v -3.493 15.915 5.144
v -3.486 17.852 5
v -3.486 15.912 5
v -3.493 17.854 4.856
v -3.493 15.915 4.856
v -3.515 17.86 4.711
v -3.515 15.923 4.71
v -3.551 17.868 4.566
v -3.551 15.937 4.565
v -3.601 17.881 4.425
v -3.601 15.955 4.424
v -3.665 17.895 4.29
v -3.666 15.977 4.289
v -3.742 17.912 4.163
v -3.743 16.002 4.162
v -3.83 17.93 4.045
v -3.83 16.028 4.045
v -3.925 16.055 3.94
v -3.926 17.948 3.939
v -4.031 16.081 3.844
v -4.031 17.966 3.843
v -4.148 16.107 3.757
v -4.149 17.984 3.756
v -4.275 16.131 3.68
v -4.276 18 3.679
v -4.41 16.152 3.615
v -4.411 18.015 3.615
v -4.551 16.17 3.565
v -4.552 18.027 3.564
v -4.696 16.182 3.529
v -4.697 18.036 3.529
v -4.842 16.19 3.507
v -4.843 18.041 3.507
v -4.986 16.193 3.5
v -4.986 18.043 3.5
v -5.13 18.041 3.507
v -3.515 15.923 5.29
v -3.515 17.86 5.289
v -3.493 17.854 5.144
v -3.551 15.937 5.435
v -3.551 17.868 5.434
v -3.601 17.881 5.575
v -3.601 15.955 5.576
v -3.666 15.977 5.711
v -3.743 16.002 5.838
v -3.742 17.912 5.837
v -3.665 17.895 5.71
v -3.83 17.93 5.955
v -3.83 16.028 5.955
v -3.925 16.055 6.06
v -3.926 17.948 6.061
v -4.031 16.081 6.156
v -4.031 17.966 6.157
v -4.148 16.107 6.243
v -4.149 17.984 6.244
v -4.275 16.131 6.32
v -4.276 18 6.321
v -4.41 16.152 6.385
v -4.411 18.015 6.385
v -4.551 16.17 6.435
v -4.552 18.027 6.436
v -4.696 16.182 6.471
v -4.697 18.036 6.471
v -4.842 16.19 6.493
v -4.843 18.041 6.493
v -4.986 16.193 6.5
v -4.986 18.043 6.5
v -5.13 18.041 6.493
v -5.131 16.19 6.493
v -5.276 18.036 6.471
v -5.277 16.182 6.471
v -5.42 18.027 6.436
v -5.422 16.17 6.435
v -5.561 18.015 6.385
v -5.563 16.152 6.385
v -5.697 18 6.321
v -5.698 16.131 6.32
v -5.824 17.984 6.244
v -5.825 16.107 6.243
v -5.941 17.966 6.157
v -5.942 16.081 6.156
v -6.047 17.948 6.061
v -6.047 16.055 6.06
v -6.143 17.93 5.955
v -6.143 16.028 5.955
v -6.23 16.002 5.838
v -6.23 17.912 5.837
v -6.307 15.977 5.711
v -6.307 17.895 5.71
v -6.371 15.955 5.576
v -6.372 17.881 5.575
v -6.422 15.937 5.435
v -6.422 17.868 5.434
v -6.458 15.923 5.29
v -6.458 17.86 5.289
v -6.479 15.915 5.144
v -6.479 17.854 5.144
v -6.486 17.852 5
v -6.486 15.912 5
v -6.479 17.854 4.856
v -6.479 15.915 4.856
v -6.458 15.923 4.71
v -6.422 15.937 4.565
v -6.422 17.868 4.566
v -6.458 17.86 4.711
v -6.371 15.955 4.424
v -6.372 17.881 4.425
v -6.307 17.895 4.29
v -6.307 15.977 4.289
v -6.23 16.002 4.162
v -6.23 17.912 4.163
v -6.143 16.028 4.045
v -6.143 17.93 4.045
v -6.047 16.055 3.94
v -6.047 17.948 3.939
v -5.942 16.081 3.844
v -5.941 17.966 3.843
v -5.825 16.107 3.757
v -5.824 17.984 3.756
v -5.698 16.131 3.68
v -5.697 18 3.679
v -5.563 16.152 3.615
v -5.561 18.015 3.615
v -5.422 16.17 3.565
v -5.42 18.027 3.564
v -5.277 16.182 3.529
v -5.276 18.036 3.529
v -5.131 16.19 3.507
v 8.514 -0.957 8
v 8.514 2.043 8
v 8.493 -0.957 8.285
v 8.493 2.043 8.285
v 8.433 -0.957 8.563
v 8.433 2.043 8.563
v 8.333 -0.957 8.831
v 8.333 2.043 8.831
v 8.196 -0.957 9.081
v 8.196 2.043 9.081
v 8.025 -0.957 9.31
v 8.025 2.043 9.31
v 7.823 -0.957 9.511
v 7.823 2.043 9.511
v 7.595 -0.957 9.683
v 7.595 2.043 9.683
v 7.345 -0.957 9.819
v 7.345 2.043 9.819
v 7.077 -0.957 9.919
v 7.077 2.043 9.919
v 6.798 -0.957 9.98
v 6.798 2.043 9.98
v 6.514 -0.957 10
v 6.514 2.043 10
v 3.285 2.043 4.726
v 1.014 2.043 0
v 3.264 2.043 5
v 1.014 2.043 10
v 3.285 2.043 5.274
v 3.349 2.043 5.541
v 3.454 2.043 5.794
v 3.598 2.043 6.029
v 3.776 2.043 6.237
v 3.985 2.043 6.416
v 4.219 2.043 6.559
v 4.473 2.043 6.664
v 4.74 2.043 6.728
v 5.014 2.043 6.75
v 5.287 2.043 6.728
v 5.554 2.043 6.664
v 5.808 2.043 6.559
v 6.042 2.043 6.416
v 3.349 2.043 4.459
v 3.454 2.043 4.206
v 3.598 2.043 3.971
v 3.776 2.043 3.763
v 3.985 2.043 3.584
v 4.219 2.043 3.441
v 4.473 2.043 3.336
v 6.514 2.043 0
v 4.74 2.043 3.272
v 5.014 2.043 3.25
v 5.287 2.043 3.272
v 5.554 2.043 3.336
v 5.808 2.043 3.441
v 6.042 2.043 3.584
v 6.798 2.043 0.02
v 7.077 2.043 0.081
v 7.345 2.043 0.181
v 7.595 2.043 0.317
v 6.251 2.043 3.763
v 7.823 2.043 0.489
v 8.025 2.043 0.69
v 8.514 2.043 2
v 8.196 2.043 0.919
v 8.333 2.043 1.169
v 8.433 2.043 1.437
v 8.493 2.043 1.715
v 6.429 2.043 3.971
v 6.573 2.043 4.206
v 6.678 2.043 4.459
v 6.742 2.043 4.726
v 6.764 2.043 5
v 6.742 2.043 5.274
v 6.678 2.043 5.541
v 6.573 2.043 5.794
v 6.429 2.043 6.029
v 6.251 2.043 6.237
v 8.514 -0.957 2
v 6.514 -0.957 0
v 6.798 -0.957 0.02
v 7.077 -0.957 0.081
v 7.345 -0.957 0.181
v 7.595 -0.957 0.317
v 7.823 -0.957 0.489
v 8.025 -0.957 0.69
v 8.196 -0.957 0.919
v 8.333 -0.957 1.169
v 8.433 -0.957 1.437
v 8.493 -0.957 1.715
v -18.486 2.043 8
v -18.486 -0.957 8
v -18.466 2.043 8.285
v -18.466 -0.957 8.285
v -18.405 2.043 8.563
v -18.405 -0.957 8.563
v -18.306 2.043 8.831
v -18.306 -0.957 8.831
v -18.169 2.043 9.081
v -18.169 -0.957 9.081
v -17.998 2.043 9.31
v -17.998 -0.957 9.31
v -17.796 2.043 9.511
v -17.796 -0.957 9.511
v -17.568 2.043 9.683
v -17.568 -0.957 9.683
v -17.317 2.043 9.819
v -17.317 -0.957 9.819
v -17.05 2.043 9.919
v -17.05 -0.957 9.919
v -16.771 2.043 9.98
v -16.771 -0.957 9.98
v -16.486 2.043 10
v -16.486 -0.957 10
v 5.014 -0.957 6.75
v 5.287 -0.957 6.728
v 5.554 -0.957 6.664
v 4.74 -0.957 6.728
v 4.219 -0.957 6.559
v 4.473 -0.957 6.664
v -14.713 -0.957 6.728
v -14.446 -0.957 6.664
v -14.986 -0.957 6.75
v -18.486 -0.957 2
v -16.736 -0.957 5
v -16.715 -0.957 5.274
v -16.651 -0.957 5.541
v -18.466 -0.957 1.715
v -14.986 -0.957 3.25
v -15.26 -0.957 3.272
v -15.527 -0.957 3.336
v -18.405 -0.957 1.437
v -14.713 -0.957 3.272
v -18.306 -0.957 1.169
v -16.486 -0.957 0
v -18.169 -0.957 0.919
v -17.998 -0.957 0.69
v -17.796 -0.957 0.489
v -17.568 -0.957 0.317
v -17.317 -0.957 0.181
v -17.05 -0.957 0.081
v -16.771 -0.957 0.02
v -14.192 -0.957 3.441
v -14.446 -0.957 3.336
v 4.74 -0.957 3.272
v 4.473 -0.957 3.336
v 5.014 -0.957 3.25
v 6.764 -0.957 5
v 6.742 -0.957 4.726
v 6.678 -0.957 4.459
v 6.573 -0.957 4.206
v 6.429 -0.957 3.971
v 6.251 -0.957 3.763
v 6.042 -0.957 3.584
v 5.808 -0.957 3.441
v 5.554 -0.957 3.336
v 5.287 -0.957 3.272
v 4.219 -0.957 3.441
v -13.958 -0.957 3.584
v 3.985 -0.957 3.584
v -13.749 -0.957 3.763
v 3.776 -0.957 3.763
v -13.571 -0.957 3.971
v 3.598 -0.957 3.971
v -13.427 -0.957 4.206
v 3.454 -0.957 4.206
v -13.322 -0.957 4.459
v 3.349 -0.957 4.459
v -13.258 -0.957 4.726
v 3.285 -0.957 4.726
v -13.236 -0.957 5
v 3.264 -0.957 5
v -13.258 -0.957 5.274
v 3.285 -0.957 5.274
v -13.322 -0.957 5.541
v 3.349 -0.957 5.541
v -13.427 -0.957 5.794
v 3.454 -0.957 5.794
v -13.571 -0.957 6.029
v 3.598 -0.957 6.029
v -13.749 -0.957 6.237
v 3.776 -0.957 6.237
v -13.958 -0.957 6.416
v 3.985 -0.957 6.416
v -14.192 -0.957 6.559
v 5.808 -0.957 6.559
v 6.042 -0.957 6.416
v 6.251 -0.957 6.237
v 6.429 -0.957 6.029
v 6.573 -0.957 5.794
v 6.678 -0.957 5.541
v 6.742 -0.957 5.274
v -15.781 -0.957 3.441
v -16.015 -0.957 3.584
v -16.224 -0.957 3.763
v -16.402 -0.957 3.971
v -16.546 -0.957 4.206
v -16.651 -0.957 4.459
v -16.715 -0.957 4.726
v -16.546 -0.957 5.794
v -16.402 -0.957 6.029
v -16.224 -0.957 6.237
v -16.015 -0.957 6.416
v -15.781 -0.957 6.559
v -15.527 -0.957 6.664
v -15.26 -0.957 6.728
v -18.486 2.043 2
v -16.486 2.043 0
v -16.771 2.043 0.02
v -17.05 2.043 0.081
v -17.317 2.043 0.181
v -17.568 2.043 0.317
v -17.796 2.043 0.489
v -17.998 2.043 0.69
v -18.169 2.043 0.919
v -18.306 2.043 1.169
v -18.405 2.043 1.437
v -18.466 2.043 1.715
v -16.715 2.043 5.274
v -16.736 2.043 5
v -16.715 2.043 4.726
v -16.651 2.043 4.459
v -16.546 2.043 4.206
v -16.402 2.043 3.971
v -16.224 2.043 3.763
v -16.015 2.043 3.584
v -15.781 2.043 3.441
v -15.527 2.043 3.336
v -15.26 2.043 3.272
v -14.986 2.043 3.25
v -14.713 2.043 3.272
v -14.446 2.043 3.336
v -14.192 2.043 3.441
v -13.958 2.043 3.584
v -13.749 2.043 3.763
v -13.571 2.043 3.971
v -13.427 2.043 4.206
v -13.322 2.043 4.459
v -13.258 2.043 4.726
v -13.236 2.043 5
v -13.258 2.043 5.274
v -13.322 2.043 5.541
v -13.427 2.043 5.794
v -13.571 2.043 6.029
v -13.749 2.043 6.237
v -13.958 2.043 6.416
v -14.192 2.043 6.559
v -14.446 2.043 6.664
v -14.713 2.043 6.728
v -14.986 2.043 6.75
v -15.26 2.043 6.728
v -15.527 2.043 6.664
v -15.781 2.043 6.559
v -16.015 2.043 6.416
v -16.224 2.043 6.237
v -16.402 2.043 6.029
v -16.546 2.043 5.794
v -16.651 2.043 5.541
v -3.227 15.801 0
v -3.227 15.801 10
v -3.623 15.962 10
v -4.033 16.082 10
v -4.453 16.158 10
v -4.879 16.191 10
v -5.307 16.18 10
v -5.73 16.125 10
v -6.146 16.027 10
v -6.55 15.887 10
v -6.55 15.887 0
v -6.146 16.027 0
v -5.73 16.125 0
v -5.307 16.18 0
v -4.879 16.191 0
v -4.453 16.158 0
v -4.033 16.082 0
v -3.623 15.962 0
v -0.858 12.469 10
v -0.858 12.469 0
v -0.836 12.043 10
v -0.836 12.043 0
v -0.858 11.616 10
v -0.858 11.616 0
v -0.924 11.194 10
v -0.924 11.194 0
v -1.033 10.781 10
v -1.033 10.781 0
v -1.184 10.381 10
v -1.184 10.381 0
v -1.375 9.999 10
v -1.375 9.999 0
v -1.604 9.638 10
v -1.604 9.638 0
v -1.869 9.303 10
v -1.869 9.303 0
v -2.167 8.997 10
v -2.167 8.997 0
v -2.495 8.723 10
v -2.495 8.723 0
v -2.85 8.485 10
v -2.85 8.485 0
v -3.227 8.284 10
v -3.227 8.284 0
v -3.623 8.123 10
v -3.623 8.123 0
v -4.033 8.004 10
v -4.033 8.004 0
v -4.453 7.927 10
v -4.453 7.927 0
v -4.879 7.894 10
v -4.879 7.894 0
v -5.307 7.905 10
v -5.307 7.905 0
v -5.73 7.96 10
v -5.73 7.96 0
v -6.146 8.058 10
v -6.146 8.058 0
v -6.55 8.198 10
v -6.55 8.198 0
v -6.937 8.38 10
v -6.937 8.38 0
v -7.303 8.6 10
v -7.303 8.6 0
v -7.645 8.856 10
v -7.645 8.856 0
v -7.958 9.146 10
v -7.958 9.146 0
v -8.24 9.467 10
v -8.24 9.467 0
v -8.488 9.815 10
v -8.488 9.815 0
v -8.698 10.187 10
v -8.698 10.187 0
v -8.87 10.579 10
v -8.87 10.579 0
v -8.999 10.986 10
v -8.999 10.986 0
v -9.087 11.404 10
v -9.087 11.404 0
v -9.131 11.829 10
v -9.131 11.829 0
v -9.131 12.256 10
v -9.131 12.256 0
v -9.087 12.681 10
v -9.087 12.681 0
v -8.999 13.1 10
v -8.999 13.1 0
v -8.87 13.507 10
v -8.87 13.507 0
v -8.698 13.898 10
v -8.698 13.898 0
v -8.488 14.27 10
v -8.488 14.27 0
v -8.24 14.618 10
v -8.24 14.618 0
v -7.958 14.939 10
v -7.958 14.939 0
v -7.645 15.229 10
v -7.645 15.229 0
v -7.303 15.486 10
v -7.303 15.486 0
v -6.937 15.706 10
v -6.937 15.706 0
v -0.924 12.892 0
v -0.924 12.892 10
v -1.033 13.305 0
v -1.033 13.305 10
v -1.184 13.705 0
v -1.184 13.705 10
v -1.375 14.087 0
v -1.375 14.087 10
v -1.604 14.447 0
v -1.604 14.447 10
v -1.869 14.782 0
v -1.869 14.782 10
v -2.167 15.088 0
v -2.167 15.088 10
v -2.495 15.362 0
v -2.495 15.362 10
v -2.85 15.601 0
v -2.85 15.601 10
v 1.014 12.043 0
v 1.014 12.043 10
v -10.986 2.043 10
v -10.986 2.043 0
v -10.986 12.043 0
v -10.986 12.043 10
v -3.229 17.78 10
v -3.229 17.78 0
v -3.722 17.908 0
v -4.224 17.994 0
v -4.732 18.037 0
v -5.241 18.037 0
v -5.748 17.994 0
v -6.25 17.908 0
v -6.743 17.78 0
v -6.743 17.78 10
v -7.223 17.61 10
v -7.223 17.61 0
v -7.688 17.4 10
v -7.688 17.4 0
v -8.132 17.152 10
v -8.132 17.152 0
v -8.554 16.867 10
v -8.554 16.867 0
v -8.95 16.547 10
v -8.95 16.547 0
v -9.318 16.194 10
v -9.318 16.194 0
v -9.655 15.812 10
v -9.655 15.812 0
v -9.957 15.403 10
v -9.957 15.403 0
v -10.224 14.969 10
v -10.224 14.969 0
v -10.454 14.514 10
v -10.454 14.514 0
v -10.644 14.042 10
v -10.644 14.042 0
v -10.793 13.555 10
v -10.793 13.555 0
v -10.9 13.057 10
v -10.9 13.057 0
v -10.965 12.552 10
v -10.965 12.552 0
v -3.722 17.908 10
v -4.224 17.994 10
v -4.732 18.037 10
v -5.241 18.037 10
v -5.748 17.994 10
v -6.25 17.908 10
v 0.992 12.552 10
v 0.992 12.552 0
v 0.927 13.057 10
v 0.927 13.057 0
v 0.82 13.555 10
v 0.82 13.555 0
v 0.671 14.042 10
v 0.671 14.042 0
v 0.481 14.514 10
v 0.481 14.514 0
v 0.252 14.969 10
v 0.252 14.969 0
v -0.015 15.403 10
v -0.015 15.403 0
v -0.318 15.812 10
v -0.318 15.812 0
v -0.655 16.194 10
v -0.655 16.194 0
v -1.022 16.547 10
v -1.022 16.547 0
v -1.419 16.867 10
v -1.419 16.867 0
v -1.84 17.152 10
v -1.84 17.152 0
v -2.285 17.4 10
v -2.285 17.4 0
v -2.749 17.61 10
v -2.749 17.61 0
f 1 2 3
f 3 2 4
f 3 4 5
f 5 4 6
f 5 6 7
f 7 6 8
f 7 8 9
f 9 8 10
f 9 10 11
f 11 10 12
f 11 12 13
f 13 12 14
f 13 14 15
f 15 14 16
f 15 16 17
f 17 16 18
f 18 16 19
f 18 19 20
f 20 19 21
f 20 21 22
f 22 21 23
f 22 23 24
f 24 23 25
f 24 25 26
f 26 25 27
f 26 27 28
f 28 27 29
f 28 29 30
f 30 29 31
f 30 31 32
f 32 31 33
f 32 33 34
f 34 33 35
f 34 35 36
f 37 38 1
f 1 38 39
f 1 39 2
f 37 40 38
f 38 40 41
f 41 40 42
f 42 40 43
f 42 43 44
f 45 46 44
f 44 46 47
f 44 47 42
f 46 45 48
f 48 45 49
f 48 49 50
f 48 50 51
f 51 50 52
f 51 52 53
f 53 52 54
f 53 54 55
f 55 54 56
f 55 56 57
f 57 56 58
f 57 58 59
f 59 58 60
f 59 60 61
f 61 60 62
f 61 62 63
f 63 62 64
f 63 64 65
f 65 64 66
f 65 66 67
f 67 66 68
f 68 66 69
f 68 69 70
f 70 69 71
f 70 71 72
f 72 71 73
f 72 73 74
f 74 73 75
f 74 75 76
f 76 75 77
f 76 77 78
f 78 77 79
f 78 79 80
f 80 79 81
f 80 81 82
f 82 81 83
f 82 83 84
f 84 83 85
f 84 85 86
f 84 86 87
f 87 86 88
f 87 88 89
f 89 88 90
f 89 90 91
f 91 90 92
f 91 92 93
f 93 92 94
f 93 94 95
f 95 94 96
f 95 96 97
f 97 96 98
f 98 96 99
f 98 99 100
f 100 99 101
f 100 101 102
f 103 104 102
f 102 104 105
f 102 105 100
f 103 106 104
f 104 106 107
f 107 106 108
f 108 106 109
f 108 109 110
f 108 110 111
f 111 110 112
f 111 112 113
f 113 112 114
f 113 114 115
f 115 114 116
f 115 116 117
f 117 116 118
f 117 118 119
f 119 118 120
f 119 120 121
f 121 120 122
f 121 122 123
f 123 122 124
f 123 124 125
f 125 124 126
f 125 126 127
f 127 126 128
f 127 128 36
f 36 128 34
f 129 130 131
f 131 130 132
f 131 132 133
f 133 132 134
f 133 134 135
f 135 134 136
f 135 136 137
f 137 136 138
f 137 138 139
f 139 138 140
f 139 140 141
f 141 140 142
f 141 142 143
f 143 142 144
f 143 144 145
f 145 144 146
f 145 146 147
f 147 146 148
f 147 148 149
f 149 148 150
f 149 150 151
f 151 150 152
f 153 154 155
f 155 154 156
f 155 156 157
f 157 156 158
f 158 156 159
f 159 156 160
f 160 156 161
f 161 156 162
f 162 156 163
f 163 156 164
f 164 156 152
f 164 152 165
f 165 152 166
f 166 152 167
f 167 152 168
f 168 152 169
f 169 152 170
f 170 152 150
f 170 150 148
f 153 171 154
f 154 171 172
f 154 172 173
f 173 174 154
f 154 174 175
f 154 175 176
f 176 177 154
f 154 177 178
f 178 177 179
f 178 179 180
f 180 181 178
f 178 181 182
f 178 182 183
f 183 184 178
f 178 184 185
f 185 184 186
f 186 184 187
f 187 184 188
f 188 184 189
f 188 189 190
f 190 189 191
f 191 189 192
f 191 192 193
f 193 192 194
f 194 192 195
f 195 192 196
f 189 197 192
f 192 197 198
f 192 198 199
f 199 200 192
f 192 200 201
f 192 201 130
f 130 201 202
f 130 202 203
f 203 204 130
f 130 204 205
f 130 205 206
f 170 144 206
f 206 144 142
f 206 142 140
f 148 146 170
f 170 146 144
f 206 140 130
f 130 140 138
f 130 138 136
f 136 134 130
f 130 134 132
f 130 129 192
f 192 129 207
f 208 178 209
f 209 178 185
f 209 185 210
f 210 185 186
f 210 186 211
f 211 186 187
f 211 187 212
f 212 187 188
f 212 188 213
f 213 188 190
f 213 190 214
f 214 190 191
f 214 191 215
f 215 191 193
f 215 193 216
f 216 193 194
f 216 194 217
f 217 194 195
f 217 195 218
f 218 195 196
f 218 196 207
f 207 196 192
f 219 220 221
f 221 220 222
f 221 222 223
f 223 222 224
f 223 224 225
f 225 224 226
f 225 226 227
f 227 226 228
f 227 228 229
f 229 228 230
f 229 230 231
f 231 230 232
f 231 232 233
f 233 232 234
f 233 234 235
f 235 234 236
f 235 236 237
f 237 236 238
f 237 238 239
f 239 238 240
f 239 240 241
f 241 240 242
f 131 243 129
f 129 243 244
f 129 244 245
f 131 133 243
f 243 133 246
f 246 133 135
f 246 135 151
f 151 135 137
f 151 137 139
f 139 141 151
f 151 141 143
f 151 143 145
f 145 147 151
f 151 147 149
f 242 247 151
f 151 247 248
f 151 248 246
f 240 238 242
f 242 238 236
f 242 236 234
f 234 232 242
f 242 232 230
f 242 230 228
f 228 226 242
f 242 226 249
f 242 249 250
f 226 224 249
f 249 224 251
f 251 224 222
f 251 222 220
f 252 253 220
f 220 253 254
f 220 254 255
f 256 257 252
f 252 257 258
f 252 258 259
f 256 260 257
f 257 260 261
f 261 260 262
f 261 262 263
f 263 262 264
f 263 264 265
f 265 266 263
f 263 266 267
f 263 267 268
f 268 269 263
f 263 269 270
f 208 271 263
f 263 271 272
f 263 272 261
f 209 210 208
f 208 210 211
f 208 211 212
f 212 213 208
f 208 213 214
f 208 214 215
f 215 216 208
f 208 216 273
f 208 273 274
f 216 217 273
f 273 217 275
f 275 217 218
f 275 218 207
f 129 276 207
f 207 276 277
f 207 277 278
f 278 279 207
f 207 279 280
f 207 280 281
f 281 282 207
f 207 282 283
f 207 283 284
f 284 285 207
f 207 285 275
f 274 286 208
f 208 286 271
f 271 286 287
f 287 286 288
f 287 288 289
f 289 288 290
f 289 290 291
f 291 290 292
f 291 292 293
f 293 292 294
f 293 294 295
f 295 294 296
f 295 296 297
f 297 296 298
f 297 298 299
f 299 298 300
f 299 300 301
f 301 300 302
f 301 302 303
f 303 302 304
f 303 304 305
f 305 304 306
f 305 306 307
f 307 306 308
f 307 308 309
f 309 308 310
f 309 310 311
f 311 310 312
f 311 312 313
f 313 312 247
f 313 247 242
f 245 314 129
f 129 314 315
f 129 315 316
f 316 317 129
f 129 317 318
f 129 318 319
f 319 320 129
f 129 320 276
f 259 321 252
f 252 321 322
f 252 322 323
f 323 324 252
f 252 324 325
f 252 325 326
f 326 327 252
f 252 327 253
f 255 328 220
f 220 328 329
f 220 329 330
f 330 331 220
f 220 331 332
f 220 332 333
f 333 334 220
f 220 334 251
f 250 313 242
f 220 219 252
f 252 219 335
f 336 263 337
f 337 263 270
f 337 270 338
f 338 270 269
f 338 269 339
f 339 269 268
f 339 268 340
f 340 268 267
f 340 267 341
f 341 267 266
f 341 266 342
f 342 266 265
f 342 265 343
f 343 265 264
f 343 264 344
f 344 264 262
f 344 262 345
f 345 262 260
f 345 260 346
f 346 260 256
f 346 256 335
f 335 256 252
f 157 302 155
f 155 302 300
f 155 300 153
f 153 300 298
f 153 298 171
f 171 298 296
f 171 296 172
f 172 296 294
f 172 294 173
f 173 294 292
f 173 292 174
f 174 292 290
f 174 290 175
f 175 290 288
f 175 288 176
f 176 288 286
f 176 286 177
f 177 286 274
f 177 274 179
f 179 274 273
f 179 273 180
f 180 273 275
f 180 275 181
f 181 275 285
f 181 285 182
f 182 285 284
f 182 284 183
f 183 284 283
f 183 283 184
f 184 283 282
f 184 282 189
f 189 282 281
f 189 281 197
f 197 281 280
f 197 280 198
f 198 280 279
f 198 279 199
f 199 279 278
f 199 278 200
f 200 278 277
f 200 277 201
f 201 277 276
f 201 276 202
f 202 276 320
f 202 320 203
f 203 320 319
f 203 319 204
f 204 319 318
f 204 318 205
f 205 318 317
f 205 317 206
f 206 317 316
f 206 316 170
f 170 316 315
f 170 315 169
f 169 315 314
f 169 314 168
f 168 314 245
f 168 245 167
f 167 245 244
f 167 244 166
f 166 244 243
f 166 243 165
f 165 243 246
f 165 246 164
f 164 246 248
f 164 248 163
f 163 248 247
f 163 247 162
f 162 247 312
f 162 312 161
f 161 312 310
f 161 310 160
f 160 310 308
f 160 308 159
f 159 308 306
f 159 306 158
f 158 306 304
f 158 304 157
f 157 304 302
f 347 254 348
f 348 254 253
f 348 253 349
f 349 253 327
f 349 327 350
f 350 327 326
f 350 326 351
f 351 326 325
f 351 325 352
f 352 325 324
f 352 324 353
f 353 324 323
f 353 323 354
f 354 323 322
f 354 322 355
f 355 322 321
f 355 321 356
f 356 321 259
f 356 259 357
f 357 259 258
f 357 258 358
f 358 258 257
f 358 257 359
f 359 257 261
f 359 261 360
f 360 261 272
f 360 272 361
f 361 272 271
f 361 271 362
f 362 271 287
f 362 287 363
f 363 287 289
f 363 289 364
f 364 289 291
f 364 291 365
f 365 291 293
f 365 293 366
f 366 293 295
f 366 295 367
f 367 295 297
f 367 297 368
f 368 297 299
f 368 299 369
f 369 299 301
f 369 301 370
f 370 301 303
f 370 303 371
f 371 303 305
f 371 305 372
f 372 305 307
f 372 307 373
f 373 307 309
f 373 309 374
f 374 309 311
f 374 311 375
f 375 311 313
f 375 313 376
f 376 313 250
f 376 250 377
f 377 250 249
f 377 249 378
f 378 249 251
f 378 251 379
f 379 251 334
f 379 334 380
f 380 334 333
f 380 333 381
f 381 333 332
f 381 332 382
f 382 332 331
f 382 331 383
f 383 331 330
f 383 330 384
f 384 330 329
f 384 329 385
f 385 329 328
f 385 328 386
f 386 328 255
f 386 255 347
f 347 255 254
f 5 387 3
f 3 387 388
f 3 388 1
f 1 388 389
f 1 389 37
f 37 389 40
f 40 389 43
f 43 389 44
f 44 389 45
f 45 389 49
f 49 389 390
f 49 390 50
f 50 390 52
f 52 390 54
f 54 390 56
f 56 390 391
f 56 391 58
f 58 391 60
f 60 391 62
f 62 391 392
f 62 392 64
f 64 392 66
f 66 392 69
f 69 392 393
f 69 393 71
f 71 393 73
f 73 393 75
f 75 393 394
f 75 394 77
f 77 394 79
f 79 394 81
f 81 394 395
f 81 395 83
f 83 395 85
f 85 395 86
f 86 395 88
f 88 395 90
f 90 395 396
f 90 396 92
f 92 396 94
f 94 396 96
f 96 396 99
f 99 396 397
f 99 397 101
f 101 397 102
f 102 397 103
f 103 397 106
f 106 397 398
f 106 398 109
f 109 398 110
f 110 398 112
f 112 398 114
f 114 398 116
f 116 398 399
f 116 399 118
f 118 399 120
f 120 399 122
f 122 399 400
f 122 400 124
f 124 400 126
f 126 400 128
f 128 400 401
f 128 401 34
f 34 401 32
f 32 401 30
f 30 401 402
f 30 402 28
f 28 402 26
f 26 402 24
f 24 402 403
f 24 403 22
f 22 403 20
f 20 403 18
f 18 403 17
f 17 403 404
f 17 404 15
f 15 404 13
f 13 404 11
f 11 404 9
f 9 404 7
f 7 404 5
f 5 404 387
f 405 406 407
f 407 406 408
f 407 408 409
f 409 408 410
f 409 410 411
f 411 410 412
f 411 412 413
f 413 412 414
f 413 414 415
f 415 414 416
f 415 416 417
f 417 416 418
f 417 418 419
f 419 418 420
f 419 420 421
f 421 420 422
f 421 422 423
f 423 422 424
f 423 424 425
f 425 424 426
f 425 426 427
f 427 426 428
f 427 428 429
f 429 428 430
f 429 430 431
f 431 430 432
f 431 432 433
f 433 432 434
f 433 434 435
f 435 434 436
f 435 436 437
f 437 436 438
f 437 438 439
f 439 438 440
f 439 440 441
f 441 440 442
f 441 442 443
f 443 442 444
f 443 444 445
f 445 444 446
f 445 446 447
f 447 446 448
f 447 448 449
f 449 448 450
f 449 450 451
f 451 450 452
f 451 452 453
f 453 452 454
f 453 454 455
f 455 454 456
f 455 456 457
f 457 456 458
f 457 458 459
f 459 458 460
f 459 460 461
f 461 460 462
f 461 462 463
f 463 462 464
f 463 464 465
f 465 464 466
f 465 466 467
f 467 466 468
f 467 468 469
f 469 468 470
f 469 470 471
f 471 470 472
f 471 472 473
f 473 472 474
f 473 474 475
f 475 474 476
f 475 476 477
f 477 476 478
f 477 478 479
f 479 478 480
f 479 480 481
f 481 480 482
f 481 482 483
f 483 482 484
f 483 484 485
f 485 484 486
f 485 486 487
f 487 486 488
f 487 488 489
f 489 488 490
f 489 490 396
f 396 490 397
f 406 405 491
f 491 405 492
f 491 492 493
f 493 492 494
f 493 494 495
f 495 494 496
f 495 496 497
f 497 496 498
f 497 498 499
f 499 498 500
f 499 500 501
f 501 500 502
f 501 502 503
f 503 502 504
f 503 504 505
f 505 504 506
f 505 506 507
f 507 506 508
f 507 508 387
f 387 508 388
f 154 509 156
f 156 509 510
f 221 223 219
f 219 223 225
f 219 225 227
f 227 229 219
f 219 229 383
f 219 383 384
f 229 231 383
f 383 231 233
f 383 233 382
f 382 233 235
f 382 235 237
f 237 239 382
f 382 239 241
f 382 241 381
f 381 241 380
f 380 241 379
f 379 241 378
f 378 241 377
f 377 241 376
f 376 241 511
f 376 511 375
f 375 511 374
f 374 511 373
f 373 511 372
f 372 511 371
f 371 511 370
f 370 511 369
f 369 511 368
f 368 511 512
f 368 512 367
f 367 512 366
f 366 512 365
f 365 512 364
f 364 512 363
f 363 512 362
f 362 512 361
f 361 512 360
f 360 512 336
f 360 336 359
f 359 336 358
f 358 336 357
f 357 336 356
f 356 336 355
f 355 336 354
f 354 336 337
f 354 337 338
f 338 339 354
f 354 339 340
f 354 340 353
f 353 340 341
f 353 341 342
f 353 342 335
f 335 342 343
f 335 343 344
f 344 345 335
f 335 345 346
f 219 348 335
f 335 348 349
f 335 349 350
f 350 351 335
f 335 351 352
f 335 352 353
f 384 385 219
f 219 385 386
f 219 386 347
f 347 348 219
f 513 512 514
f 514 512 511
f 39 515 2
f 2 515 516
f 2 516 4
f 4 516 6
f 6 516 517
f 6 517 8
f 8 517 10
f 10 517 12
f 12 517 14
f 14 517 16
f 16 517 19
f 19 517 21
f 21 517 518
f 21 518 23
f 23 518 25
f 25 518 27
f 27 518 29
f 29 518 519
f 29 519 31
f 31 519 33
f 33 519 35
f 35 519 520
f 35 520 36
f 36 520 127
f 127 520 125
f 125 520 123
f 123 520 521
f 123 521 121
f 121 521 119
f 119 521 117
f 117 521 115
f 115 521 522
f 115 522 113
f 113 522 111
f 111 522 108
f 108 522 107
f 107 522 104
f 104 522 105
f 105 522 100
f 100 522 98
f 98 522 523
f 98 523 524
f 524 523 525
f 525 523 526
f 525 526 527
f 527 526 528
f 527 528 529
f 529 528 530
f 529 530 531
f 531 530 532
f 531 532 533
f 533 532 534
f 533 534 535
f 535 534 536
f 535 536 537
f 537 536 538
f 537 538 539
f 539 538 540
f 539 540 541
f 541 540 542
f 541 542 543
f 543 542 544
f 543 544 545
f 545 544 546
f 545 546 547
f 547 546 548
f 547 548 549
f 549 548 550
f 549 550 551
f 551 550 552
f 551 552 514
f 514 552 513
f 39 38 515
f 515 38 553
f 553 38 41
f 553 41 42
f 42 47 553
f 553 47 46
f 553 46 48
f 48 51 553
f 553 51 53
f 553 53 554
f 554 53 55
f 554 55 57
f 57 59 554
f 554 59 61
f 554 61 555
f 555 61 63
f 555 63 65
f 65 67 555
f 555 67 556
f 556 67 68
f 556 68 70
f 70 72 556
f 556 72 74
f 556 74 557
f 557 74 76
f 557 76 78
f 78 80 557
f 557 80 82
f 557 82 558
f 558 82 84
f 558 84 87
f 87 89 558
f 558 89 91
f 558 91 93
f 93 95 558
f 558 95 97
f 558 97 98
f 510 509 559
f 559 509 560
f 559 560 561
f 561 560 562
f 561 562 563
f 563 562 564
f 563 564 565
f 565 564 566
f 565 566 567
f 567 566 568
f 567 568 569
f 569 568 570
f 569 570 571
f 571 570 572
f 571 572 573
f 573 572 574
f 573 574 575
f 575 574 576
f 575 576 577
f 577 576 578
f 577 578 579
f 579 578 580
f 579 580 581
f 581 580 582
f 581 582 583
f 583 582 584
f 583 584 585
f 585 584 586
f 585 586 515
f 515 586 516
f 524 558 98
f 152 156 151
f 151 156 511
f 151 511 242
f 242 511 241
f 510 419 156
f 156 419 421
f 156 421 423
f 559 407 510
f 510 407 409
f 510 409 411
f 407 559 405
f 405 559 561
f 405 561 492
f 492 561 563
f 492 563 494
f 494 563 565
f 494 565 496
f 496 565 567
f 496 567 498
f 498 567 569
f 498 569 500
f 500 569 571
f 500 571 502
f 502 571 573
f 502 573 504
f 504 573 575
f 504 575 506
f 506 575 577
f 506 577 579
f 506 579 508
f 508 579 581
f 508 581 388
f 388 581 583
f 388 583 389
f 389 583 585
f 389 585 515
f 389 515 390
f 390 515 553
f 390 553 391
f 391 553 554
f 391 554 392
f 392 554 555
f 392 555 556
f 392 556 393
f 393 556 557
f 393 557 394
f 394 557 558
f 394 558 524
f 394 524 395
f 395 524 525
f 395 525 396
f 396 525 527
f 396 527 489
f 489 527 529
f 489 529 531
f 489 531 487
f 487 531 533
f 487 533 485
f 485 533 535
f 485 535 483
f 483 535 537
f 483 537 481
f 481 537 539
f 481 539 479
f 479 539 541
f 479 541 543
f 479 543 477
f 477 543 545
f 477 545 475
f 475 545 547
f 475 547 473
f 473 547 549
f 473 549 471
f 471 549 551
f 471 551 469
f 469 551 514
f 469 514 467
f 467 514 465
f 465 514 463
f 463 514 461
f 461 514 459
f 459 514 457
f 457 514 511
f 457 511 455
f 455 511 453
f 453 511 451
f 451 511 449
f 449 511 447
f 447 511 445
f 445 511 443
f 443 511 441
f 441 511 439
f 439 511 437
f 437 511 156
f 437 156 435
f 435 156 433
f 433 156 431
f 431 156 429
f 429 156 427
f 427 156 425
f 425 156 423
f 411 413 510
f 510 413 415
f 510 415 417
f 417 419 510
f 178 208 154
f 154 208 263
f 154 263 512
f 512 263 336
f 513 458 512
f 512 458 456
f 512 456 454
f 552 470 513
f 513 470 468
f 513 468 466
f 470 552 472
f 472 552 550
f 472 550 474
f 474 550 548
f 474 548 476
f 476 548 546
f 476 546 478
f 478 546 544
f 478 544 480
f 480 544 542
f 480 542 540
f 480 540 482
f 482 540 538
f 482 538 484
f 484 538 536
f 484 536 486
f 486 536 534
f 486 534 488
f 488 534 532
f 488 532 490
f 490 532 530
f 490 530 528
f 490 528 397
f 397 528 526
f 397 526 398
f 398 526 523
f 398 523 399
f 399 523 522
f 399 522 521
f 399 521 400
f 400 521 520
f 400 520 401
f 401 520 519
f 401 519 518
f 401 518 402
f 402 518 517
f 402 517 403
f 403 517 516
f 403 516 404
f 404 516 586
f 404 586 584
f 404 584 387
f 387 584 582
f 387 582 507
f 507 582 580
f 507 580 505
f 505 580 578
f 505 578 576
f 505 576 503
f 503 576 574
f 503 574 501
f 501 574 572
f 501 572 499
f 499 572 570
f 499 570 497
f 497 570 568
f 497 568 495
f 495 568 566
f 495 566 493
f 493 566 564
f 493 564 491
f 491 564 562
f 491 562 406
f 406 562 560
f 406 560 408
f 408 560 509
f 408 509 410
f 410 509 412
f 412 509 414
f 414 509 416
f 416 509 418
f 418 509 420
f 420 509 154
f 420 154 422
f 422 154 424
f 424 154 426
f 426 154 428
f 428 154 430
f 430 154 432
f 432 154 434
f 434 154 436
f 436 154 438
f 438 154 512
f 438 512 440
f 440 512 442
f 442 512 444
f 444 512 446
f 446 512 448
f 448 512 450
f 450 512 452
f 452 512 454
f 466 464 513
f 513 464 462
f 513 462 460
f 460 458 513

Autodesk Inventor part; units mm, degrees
ref_plane "YZ Plane" through (0, 0, 0) normal (1, 0, 0) x (0, 1, 0)
ref_plane "XZ Plane" through (0, 0, 0) normal (0, 1, 0) x (-1, 0, 0)
sketch "Sketch1" plane through (0, 0, 0) normal (0, 0, 1) x (1, 0, 0)
  line L0 (-18.4863, -0.9573) -> (8.5137, -0.9573)
  line L1 (8.5137, -0.9573) -> (8.5137, 2.0427)
  line L2 (8.5137, 2.0427) -> (-18.4863, 2.0427)
  line L3 (-18.4863, 2.0427) -> (-18.4863, -0.9573)
  circle A0 centre (-4.9863, 12.0427) radius 4.15
  line L4 (-4.9863, 2.0427) -> (-4.9863, 12.0427)
  line L5 (-4.9863, 12.0427) -> (-4.9863, 2.0427) construction
  line L6 (-10.9863, 12.0427) -> (-10.9863, 2.0427)
  line L7 (1.0137, 2.0427) -> (1.0137, 12.0427)
  arc A1 (1.0137, 12.0427) -> (-10.9863, 12.0427) centre (-4.9863, 12.0427) ccw
  arc A2 (-10.9863, 2.0427) -> (1.0137, 2.0427) centre (-4.9863, 2.0427) ccw
  point P0 (0, 0)
  point P1 (-4.9863, 7.0427)
  point P2 (-10.9863, 2.0427)
  dimension "d0" = 3
  dimension "d1" = 27
  dimension "d2" = 8.3
  dimension "d3" = 6
  dimension "d4" = 10
extrude "Extrusion1" add sketch "Sketch1" along normal blind 10 contours L3 L2 A2 L0 | A2 L2 L0 | A2 L2 L1 L0 | L6 A1 L7 L2
sketch "Sketch2" plane through (-18.4863, -0.9573, 0) normal (0, -1, 0) x (1, 0, 0)
  line L0 (0, 0) -> (0, 10) projected
  line L1 (0, 5) -> (27, 5)
  line L2 (27, 0) -> (27, 10) projected
  circle A0 centre (3.5, 5) radius 1.75
  line L3 (19.5, 0) -> (7.5, 0) projected
  line L4 (13.5, 0) -> (13.5, -6.2833)
  circle A1 centre (23.5, 5) radius 1.75
  point P0 (18.4863, 0)
  dimension "d7" = 3.5
  dimension "d8" = 20
extrude "Extrusion2" cut sketch "Sketch2" against normal up to surface (3 mm away)
fillet "Fillet1" radius 2 4 edges at (-18.4863, 0.5427, 0) (-18.4863, 0.5427, 10) (8.5137, 0.5427, 0) (8.5137, 0.5427, 10)
ref_plane "Work Plane1" through (1.0137, 23.2927, 10) normal (0, 1, 0) x (1, 0, 0)
sketch "Sketch3" plane through (1.0137, 23.2927, 10) normal (0, 1, 0) x (1, 0, 0)
  line L0 (0, 10) -> (-12, 10) projected
  line L1 (-12, 10) -> (-12, 0) projected
  line L2 (0, 0) -> (-12, 0) projected
  line L3 (0, 10) -> (0, 0) projected
  line L4 (-6, 10) -> (-6, 0)
  circle A0 centre (-6, 5) radius 1.5
  point P0 (-1.0137, 10)
  dimension "d13" = 3
extrude "Extrusion3" cut sketch "Sketch3" against normal blind 10 contours A0 L4 | L4 A0
properties part number "Rod Holder_3DPrint"
